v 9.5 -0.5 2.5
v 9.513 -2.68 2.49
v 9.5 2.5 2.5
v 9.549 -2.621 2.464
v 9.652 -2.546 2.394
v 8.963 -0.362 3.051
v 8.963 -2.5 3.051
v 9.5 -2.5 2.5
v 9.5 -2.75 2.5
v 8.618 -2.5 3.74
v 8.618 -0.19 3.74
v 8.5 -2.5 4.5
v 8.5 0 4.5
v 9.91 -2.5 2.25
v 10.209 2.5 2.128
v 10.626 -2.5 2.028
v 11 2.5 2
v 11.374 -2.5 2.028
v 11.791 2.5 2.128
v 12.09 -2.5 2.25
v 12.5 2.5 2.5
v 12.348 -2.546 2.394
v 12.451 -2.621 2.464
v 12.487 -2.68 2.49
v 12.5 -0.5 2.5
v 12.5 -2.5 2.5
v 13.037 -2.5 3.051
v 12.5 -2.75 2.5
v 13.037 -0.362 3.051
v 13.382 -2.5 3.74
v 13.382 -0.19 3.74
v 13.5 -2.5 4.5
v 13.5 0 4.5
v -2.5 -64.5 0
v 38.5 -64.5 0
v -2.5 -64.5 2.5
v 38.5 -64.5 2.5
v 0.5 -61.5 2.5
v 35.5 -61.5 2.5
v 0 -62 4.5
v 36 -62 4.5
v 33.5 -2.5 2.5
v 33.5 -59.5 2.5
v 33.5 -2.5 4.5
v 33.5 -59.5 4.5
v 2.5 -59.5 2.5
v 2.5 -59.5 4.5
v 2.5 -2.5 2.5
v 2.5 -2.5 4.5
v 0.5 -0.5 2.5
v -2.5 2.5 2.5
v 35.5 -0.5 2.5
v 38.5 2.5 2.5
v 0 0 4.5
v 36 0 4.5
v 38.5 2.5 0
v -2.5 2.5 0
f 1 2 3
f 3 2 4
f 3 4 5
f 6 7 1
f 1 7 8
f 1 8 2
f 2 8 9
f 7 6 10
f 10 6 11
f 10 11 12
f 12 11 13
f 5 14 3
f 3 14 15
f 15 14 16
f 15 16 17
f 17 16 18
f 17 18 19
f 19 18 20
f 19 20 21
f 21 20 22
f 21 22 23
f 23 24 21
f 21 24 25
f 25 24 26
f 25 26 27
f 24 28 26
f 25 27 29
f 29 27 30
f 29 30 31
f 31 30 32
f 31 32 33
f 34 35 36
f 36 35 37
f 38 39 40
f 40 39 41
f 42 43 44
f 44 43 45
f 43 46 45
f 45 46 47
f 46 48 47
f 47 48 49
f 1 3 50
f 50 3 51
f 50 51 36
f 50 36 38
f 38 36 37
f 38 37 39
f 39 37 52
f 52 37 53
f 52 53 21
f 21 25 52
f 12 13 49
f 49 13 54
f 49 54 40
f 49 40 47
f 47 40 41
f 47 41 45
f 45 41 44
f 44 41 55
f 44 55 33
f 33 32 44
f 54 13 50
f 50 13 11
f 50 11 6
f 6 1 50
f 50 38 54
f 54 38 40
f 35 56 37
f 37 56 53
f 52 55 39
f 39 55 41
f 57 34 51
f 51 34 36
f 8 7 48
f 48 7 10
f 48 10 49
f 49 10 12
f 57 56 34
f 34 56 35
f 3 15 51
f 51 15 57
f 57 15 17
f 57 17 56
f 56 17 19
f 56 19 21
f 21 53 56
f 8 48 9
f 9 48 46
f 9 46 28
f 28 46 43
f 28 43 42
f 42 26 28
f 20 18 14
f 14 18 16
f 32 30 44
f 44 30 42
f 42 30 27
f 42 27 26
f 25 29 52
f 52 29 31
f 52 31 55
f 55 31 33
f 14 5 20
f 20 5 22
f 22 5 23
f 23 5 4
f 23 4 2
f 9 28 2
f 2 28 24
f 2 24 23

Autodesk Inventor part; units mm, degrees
ref_plane "YZ Plane" through (0, 0, 0) normal (1, 0, 0) x (0, 1, 0)
ref_plane "XZ Plane" through (0, 0, 0) normal (0, 1, 0) x (-1, 0, 0)
ref_plane "XY Plane" through (0, 0, 0) normal (0, 0, 1) x (1, 0, 0)
sketch "Sketch1" plane through (0, 0, 0) normal (0, 0, 1) x (1, 0, 0)
  line L0 (0, 0) -> (36, 0)
  line L1 (36, 0) -> (36, -62)
  line L2 (36, -62) -> (0, -62)
  line L3 (0, -62) -> (0, 0)
  line L4 (-2.5, 2.5) -> (38.5, 2.5)
  line L5 (38.5, 2.5) -> (38.5, -64.5)
  line L6 (38.5, -64.5) -> (-2.5, -64.5)
  line L7 (-2.5, -64.5) -> (-2.5, 2.5)
  dimension "d0" = 36
  dimension "d1" = 62
  dimension "d2" = 2.5
extrude "Extrusion1" add sketch "Sketch1" along normal blind 2.5 contours L0 L1 L2 L3 | L4 L5 L6 L7
sketch "Sketch2" plane through (0, 0, 2.5) normal (0, 0, 1) x (1, 0, 0)
  line L0 (38.5, 2.5) -> (-2.5, 2.5) projected
  line L1 (-2.5, 2.5) -> (-2.5, -64.5) projected
  line L2 (-2.5, -64.5) -> (38.5, -64.5) projected
  line L3 (38.5, -64.5) -> (38.5, 2.5) projected
  line L4 (0, 0) -> (36, 0)
  line L5 (36, 0) -> (36, -62)
  line L6 (36, -62) -> (0, -62)
  line L7 (0, -62) -> (0, 0)
  line L8 (2.5, -2.5) -> (33.5, -2.5)
  line L9 (33.5, -2.5) -> (33.5, -59.5)
  line L10 (33.5, -59.5) -> (2.5, -59.5)
  line L11 (2.5, -59.5) -> (2.5, -2.5)
  point P0 (0, 0)
  dimension "d5" = 2.5
  dimension "d6" = 2.5
extrude "Extrusion2" add sketch "Sketch2" along normal blind 2 contours L4 L5 L6 L7
sketch "Sketch3" plane through (0, -62, 2.5) normal (-1, 0, 0) x (0, 0, 1)
  line L0 (0, 62) -> (2, 62) projected
  line L1 (0, 62) -> (0, 61.5)
  line L2 (0, 64.5) -> (0, -2.5) projected
  line L3 (2, 62) -> (2, 0) projected
  line L4 (0, 61.5) -> (2, 62)
  line L5 (2, 62) -> (0, 62)
  line L6 (0, 0) -> (0, 0.5)
  line L7 (0, 0) -> (0, 62) projected
  line L8 (0, 0.5) -> (2, 0)
  line L9 (0, 0) -> (2, 0) projected
  line L10 (2, 0) -> (0, 0)
  point P0 (-2.5, 62)
  dimension "d9" = 0.5
  dimension "d10" = 0.5
sketch "Sketch4" plane through (0, 0, 2.5) normal (0, 1, 0) x (1, 0, 0)
  line L0 (36, 0) -> (36, -2) projected
  line L1 (36, -2) -> (36, 0)
  line L2 (36, 0) -> (35.5, 0)
  line L3 (36, 0) -> (0, 0) projected
  line L4 (35.5, 0) -> (36, -2)
  line L5 (0, 0) -> (0, -2) projected
  line L6 (0, -2) -> (0, 0)
  line L7 (0, 0) -> (0.5, 0)
  line L8 (0.5, 0) -> (0, -2)
  point P0 (0, 2.5)
  dimension "d13" = 0.5
  dimension "d14" = 0.5
extrude "Extrusion3" cut sketch "Sketch3" against normal through all contours L0 L4 L1 | L9 L2 L8
extrude "Extrusion4" cut sketch "Sketch4" against normal through all
sketch "Sketch5" plane through (-2.5, 2.5, 0) normal (0, 1, 0) x (1, 0, 0)
  line L0 (5, -4.5) -> (36, -4.5) projected
  line L1 (20.5, -4.5) -> (13.5, -4.5)
  circle A0 centre (13.5, -4.5) radius 2.5
  point P0 (2.5, 0)
  dimension "d17" = 7
  dimension "d18" = 5
extrude "Extrusion5" cut sketch "Sketch5" against normal blind 5
fillet "Fillet1" radius 0.25 1 edges at (11, -2.5, 2.5)
properties part number "feeder_encolsure_lid"
